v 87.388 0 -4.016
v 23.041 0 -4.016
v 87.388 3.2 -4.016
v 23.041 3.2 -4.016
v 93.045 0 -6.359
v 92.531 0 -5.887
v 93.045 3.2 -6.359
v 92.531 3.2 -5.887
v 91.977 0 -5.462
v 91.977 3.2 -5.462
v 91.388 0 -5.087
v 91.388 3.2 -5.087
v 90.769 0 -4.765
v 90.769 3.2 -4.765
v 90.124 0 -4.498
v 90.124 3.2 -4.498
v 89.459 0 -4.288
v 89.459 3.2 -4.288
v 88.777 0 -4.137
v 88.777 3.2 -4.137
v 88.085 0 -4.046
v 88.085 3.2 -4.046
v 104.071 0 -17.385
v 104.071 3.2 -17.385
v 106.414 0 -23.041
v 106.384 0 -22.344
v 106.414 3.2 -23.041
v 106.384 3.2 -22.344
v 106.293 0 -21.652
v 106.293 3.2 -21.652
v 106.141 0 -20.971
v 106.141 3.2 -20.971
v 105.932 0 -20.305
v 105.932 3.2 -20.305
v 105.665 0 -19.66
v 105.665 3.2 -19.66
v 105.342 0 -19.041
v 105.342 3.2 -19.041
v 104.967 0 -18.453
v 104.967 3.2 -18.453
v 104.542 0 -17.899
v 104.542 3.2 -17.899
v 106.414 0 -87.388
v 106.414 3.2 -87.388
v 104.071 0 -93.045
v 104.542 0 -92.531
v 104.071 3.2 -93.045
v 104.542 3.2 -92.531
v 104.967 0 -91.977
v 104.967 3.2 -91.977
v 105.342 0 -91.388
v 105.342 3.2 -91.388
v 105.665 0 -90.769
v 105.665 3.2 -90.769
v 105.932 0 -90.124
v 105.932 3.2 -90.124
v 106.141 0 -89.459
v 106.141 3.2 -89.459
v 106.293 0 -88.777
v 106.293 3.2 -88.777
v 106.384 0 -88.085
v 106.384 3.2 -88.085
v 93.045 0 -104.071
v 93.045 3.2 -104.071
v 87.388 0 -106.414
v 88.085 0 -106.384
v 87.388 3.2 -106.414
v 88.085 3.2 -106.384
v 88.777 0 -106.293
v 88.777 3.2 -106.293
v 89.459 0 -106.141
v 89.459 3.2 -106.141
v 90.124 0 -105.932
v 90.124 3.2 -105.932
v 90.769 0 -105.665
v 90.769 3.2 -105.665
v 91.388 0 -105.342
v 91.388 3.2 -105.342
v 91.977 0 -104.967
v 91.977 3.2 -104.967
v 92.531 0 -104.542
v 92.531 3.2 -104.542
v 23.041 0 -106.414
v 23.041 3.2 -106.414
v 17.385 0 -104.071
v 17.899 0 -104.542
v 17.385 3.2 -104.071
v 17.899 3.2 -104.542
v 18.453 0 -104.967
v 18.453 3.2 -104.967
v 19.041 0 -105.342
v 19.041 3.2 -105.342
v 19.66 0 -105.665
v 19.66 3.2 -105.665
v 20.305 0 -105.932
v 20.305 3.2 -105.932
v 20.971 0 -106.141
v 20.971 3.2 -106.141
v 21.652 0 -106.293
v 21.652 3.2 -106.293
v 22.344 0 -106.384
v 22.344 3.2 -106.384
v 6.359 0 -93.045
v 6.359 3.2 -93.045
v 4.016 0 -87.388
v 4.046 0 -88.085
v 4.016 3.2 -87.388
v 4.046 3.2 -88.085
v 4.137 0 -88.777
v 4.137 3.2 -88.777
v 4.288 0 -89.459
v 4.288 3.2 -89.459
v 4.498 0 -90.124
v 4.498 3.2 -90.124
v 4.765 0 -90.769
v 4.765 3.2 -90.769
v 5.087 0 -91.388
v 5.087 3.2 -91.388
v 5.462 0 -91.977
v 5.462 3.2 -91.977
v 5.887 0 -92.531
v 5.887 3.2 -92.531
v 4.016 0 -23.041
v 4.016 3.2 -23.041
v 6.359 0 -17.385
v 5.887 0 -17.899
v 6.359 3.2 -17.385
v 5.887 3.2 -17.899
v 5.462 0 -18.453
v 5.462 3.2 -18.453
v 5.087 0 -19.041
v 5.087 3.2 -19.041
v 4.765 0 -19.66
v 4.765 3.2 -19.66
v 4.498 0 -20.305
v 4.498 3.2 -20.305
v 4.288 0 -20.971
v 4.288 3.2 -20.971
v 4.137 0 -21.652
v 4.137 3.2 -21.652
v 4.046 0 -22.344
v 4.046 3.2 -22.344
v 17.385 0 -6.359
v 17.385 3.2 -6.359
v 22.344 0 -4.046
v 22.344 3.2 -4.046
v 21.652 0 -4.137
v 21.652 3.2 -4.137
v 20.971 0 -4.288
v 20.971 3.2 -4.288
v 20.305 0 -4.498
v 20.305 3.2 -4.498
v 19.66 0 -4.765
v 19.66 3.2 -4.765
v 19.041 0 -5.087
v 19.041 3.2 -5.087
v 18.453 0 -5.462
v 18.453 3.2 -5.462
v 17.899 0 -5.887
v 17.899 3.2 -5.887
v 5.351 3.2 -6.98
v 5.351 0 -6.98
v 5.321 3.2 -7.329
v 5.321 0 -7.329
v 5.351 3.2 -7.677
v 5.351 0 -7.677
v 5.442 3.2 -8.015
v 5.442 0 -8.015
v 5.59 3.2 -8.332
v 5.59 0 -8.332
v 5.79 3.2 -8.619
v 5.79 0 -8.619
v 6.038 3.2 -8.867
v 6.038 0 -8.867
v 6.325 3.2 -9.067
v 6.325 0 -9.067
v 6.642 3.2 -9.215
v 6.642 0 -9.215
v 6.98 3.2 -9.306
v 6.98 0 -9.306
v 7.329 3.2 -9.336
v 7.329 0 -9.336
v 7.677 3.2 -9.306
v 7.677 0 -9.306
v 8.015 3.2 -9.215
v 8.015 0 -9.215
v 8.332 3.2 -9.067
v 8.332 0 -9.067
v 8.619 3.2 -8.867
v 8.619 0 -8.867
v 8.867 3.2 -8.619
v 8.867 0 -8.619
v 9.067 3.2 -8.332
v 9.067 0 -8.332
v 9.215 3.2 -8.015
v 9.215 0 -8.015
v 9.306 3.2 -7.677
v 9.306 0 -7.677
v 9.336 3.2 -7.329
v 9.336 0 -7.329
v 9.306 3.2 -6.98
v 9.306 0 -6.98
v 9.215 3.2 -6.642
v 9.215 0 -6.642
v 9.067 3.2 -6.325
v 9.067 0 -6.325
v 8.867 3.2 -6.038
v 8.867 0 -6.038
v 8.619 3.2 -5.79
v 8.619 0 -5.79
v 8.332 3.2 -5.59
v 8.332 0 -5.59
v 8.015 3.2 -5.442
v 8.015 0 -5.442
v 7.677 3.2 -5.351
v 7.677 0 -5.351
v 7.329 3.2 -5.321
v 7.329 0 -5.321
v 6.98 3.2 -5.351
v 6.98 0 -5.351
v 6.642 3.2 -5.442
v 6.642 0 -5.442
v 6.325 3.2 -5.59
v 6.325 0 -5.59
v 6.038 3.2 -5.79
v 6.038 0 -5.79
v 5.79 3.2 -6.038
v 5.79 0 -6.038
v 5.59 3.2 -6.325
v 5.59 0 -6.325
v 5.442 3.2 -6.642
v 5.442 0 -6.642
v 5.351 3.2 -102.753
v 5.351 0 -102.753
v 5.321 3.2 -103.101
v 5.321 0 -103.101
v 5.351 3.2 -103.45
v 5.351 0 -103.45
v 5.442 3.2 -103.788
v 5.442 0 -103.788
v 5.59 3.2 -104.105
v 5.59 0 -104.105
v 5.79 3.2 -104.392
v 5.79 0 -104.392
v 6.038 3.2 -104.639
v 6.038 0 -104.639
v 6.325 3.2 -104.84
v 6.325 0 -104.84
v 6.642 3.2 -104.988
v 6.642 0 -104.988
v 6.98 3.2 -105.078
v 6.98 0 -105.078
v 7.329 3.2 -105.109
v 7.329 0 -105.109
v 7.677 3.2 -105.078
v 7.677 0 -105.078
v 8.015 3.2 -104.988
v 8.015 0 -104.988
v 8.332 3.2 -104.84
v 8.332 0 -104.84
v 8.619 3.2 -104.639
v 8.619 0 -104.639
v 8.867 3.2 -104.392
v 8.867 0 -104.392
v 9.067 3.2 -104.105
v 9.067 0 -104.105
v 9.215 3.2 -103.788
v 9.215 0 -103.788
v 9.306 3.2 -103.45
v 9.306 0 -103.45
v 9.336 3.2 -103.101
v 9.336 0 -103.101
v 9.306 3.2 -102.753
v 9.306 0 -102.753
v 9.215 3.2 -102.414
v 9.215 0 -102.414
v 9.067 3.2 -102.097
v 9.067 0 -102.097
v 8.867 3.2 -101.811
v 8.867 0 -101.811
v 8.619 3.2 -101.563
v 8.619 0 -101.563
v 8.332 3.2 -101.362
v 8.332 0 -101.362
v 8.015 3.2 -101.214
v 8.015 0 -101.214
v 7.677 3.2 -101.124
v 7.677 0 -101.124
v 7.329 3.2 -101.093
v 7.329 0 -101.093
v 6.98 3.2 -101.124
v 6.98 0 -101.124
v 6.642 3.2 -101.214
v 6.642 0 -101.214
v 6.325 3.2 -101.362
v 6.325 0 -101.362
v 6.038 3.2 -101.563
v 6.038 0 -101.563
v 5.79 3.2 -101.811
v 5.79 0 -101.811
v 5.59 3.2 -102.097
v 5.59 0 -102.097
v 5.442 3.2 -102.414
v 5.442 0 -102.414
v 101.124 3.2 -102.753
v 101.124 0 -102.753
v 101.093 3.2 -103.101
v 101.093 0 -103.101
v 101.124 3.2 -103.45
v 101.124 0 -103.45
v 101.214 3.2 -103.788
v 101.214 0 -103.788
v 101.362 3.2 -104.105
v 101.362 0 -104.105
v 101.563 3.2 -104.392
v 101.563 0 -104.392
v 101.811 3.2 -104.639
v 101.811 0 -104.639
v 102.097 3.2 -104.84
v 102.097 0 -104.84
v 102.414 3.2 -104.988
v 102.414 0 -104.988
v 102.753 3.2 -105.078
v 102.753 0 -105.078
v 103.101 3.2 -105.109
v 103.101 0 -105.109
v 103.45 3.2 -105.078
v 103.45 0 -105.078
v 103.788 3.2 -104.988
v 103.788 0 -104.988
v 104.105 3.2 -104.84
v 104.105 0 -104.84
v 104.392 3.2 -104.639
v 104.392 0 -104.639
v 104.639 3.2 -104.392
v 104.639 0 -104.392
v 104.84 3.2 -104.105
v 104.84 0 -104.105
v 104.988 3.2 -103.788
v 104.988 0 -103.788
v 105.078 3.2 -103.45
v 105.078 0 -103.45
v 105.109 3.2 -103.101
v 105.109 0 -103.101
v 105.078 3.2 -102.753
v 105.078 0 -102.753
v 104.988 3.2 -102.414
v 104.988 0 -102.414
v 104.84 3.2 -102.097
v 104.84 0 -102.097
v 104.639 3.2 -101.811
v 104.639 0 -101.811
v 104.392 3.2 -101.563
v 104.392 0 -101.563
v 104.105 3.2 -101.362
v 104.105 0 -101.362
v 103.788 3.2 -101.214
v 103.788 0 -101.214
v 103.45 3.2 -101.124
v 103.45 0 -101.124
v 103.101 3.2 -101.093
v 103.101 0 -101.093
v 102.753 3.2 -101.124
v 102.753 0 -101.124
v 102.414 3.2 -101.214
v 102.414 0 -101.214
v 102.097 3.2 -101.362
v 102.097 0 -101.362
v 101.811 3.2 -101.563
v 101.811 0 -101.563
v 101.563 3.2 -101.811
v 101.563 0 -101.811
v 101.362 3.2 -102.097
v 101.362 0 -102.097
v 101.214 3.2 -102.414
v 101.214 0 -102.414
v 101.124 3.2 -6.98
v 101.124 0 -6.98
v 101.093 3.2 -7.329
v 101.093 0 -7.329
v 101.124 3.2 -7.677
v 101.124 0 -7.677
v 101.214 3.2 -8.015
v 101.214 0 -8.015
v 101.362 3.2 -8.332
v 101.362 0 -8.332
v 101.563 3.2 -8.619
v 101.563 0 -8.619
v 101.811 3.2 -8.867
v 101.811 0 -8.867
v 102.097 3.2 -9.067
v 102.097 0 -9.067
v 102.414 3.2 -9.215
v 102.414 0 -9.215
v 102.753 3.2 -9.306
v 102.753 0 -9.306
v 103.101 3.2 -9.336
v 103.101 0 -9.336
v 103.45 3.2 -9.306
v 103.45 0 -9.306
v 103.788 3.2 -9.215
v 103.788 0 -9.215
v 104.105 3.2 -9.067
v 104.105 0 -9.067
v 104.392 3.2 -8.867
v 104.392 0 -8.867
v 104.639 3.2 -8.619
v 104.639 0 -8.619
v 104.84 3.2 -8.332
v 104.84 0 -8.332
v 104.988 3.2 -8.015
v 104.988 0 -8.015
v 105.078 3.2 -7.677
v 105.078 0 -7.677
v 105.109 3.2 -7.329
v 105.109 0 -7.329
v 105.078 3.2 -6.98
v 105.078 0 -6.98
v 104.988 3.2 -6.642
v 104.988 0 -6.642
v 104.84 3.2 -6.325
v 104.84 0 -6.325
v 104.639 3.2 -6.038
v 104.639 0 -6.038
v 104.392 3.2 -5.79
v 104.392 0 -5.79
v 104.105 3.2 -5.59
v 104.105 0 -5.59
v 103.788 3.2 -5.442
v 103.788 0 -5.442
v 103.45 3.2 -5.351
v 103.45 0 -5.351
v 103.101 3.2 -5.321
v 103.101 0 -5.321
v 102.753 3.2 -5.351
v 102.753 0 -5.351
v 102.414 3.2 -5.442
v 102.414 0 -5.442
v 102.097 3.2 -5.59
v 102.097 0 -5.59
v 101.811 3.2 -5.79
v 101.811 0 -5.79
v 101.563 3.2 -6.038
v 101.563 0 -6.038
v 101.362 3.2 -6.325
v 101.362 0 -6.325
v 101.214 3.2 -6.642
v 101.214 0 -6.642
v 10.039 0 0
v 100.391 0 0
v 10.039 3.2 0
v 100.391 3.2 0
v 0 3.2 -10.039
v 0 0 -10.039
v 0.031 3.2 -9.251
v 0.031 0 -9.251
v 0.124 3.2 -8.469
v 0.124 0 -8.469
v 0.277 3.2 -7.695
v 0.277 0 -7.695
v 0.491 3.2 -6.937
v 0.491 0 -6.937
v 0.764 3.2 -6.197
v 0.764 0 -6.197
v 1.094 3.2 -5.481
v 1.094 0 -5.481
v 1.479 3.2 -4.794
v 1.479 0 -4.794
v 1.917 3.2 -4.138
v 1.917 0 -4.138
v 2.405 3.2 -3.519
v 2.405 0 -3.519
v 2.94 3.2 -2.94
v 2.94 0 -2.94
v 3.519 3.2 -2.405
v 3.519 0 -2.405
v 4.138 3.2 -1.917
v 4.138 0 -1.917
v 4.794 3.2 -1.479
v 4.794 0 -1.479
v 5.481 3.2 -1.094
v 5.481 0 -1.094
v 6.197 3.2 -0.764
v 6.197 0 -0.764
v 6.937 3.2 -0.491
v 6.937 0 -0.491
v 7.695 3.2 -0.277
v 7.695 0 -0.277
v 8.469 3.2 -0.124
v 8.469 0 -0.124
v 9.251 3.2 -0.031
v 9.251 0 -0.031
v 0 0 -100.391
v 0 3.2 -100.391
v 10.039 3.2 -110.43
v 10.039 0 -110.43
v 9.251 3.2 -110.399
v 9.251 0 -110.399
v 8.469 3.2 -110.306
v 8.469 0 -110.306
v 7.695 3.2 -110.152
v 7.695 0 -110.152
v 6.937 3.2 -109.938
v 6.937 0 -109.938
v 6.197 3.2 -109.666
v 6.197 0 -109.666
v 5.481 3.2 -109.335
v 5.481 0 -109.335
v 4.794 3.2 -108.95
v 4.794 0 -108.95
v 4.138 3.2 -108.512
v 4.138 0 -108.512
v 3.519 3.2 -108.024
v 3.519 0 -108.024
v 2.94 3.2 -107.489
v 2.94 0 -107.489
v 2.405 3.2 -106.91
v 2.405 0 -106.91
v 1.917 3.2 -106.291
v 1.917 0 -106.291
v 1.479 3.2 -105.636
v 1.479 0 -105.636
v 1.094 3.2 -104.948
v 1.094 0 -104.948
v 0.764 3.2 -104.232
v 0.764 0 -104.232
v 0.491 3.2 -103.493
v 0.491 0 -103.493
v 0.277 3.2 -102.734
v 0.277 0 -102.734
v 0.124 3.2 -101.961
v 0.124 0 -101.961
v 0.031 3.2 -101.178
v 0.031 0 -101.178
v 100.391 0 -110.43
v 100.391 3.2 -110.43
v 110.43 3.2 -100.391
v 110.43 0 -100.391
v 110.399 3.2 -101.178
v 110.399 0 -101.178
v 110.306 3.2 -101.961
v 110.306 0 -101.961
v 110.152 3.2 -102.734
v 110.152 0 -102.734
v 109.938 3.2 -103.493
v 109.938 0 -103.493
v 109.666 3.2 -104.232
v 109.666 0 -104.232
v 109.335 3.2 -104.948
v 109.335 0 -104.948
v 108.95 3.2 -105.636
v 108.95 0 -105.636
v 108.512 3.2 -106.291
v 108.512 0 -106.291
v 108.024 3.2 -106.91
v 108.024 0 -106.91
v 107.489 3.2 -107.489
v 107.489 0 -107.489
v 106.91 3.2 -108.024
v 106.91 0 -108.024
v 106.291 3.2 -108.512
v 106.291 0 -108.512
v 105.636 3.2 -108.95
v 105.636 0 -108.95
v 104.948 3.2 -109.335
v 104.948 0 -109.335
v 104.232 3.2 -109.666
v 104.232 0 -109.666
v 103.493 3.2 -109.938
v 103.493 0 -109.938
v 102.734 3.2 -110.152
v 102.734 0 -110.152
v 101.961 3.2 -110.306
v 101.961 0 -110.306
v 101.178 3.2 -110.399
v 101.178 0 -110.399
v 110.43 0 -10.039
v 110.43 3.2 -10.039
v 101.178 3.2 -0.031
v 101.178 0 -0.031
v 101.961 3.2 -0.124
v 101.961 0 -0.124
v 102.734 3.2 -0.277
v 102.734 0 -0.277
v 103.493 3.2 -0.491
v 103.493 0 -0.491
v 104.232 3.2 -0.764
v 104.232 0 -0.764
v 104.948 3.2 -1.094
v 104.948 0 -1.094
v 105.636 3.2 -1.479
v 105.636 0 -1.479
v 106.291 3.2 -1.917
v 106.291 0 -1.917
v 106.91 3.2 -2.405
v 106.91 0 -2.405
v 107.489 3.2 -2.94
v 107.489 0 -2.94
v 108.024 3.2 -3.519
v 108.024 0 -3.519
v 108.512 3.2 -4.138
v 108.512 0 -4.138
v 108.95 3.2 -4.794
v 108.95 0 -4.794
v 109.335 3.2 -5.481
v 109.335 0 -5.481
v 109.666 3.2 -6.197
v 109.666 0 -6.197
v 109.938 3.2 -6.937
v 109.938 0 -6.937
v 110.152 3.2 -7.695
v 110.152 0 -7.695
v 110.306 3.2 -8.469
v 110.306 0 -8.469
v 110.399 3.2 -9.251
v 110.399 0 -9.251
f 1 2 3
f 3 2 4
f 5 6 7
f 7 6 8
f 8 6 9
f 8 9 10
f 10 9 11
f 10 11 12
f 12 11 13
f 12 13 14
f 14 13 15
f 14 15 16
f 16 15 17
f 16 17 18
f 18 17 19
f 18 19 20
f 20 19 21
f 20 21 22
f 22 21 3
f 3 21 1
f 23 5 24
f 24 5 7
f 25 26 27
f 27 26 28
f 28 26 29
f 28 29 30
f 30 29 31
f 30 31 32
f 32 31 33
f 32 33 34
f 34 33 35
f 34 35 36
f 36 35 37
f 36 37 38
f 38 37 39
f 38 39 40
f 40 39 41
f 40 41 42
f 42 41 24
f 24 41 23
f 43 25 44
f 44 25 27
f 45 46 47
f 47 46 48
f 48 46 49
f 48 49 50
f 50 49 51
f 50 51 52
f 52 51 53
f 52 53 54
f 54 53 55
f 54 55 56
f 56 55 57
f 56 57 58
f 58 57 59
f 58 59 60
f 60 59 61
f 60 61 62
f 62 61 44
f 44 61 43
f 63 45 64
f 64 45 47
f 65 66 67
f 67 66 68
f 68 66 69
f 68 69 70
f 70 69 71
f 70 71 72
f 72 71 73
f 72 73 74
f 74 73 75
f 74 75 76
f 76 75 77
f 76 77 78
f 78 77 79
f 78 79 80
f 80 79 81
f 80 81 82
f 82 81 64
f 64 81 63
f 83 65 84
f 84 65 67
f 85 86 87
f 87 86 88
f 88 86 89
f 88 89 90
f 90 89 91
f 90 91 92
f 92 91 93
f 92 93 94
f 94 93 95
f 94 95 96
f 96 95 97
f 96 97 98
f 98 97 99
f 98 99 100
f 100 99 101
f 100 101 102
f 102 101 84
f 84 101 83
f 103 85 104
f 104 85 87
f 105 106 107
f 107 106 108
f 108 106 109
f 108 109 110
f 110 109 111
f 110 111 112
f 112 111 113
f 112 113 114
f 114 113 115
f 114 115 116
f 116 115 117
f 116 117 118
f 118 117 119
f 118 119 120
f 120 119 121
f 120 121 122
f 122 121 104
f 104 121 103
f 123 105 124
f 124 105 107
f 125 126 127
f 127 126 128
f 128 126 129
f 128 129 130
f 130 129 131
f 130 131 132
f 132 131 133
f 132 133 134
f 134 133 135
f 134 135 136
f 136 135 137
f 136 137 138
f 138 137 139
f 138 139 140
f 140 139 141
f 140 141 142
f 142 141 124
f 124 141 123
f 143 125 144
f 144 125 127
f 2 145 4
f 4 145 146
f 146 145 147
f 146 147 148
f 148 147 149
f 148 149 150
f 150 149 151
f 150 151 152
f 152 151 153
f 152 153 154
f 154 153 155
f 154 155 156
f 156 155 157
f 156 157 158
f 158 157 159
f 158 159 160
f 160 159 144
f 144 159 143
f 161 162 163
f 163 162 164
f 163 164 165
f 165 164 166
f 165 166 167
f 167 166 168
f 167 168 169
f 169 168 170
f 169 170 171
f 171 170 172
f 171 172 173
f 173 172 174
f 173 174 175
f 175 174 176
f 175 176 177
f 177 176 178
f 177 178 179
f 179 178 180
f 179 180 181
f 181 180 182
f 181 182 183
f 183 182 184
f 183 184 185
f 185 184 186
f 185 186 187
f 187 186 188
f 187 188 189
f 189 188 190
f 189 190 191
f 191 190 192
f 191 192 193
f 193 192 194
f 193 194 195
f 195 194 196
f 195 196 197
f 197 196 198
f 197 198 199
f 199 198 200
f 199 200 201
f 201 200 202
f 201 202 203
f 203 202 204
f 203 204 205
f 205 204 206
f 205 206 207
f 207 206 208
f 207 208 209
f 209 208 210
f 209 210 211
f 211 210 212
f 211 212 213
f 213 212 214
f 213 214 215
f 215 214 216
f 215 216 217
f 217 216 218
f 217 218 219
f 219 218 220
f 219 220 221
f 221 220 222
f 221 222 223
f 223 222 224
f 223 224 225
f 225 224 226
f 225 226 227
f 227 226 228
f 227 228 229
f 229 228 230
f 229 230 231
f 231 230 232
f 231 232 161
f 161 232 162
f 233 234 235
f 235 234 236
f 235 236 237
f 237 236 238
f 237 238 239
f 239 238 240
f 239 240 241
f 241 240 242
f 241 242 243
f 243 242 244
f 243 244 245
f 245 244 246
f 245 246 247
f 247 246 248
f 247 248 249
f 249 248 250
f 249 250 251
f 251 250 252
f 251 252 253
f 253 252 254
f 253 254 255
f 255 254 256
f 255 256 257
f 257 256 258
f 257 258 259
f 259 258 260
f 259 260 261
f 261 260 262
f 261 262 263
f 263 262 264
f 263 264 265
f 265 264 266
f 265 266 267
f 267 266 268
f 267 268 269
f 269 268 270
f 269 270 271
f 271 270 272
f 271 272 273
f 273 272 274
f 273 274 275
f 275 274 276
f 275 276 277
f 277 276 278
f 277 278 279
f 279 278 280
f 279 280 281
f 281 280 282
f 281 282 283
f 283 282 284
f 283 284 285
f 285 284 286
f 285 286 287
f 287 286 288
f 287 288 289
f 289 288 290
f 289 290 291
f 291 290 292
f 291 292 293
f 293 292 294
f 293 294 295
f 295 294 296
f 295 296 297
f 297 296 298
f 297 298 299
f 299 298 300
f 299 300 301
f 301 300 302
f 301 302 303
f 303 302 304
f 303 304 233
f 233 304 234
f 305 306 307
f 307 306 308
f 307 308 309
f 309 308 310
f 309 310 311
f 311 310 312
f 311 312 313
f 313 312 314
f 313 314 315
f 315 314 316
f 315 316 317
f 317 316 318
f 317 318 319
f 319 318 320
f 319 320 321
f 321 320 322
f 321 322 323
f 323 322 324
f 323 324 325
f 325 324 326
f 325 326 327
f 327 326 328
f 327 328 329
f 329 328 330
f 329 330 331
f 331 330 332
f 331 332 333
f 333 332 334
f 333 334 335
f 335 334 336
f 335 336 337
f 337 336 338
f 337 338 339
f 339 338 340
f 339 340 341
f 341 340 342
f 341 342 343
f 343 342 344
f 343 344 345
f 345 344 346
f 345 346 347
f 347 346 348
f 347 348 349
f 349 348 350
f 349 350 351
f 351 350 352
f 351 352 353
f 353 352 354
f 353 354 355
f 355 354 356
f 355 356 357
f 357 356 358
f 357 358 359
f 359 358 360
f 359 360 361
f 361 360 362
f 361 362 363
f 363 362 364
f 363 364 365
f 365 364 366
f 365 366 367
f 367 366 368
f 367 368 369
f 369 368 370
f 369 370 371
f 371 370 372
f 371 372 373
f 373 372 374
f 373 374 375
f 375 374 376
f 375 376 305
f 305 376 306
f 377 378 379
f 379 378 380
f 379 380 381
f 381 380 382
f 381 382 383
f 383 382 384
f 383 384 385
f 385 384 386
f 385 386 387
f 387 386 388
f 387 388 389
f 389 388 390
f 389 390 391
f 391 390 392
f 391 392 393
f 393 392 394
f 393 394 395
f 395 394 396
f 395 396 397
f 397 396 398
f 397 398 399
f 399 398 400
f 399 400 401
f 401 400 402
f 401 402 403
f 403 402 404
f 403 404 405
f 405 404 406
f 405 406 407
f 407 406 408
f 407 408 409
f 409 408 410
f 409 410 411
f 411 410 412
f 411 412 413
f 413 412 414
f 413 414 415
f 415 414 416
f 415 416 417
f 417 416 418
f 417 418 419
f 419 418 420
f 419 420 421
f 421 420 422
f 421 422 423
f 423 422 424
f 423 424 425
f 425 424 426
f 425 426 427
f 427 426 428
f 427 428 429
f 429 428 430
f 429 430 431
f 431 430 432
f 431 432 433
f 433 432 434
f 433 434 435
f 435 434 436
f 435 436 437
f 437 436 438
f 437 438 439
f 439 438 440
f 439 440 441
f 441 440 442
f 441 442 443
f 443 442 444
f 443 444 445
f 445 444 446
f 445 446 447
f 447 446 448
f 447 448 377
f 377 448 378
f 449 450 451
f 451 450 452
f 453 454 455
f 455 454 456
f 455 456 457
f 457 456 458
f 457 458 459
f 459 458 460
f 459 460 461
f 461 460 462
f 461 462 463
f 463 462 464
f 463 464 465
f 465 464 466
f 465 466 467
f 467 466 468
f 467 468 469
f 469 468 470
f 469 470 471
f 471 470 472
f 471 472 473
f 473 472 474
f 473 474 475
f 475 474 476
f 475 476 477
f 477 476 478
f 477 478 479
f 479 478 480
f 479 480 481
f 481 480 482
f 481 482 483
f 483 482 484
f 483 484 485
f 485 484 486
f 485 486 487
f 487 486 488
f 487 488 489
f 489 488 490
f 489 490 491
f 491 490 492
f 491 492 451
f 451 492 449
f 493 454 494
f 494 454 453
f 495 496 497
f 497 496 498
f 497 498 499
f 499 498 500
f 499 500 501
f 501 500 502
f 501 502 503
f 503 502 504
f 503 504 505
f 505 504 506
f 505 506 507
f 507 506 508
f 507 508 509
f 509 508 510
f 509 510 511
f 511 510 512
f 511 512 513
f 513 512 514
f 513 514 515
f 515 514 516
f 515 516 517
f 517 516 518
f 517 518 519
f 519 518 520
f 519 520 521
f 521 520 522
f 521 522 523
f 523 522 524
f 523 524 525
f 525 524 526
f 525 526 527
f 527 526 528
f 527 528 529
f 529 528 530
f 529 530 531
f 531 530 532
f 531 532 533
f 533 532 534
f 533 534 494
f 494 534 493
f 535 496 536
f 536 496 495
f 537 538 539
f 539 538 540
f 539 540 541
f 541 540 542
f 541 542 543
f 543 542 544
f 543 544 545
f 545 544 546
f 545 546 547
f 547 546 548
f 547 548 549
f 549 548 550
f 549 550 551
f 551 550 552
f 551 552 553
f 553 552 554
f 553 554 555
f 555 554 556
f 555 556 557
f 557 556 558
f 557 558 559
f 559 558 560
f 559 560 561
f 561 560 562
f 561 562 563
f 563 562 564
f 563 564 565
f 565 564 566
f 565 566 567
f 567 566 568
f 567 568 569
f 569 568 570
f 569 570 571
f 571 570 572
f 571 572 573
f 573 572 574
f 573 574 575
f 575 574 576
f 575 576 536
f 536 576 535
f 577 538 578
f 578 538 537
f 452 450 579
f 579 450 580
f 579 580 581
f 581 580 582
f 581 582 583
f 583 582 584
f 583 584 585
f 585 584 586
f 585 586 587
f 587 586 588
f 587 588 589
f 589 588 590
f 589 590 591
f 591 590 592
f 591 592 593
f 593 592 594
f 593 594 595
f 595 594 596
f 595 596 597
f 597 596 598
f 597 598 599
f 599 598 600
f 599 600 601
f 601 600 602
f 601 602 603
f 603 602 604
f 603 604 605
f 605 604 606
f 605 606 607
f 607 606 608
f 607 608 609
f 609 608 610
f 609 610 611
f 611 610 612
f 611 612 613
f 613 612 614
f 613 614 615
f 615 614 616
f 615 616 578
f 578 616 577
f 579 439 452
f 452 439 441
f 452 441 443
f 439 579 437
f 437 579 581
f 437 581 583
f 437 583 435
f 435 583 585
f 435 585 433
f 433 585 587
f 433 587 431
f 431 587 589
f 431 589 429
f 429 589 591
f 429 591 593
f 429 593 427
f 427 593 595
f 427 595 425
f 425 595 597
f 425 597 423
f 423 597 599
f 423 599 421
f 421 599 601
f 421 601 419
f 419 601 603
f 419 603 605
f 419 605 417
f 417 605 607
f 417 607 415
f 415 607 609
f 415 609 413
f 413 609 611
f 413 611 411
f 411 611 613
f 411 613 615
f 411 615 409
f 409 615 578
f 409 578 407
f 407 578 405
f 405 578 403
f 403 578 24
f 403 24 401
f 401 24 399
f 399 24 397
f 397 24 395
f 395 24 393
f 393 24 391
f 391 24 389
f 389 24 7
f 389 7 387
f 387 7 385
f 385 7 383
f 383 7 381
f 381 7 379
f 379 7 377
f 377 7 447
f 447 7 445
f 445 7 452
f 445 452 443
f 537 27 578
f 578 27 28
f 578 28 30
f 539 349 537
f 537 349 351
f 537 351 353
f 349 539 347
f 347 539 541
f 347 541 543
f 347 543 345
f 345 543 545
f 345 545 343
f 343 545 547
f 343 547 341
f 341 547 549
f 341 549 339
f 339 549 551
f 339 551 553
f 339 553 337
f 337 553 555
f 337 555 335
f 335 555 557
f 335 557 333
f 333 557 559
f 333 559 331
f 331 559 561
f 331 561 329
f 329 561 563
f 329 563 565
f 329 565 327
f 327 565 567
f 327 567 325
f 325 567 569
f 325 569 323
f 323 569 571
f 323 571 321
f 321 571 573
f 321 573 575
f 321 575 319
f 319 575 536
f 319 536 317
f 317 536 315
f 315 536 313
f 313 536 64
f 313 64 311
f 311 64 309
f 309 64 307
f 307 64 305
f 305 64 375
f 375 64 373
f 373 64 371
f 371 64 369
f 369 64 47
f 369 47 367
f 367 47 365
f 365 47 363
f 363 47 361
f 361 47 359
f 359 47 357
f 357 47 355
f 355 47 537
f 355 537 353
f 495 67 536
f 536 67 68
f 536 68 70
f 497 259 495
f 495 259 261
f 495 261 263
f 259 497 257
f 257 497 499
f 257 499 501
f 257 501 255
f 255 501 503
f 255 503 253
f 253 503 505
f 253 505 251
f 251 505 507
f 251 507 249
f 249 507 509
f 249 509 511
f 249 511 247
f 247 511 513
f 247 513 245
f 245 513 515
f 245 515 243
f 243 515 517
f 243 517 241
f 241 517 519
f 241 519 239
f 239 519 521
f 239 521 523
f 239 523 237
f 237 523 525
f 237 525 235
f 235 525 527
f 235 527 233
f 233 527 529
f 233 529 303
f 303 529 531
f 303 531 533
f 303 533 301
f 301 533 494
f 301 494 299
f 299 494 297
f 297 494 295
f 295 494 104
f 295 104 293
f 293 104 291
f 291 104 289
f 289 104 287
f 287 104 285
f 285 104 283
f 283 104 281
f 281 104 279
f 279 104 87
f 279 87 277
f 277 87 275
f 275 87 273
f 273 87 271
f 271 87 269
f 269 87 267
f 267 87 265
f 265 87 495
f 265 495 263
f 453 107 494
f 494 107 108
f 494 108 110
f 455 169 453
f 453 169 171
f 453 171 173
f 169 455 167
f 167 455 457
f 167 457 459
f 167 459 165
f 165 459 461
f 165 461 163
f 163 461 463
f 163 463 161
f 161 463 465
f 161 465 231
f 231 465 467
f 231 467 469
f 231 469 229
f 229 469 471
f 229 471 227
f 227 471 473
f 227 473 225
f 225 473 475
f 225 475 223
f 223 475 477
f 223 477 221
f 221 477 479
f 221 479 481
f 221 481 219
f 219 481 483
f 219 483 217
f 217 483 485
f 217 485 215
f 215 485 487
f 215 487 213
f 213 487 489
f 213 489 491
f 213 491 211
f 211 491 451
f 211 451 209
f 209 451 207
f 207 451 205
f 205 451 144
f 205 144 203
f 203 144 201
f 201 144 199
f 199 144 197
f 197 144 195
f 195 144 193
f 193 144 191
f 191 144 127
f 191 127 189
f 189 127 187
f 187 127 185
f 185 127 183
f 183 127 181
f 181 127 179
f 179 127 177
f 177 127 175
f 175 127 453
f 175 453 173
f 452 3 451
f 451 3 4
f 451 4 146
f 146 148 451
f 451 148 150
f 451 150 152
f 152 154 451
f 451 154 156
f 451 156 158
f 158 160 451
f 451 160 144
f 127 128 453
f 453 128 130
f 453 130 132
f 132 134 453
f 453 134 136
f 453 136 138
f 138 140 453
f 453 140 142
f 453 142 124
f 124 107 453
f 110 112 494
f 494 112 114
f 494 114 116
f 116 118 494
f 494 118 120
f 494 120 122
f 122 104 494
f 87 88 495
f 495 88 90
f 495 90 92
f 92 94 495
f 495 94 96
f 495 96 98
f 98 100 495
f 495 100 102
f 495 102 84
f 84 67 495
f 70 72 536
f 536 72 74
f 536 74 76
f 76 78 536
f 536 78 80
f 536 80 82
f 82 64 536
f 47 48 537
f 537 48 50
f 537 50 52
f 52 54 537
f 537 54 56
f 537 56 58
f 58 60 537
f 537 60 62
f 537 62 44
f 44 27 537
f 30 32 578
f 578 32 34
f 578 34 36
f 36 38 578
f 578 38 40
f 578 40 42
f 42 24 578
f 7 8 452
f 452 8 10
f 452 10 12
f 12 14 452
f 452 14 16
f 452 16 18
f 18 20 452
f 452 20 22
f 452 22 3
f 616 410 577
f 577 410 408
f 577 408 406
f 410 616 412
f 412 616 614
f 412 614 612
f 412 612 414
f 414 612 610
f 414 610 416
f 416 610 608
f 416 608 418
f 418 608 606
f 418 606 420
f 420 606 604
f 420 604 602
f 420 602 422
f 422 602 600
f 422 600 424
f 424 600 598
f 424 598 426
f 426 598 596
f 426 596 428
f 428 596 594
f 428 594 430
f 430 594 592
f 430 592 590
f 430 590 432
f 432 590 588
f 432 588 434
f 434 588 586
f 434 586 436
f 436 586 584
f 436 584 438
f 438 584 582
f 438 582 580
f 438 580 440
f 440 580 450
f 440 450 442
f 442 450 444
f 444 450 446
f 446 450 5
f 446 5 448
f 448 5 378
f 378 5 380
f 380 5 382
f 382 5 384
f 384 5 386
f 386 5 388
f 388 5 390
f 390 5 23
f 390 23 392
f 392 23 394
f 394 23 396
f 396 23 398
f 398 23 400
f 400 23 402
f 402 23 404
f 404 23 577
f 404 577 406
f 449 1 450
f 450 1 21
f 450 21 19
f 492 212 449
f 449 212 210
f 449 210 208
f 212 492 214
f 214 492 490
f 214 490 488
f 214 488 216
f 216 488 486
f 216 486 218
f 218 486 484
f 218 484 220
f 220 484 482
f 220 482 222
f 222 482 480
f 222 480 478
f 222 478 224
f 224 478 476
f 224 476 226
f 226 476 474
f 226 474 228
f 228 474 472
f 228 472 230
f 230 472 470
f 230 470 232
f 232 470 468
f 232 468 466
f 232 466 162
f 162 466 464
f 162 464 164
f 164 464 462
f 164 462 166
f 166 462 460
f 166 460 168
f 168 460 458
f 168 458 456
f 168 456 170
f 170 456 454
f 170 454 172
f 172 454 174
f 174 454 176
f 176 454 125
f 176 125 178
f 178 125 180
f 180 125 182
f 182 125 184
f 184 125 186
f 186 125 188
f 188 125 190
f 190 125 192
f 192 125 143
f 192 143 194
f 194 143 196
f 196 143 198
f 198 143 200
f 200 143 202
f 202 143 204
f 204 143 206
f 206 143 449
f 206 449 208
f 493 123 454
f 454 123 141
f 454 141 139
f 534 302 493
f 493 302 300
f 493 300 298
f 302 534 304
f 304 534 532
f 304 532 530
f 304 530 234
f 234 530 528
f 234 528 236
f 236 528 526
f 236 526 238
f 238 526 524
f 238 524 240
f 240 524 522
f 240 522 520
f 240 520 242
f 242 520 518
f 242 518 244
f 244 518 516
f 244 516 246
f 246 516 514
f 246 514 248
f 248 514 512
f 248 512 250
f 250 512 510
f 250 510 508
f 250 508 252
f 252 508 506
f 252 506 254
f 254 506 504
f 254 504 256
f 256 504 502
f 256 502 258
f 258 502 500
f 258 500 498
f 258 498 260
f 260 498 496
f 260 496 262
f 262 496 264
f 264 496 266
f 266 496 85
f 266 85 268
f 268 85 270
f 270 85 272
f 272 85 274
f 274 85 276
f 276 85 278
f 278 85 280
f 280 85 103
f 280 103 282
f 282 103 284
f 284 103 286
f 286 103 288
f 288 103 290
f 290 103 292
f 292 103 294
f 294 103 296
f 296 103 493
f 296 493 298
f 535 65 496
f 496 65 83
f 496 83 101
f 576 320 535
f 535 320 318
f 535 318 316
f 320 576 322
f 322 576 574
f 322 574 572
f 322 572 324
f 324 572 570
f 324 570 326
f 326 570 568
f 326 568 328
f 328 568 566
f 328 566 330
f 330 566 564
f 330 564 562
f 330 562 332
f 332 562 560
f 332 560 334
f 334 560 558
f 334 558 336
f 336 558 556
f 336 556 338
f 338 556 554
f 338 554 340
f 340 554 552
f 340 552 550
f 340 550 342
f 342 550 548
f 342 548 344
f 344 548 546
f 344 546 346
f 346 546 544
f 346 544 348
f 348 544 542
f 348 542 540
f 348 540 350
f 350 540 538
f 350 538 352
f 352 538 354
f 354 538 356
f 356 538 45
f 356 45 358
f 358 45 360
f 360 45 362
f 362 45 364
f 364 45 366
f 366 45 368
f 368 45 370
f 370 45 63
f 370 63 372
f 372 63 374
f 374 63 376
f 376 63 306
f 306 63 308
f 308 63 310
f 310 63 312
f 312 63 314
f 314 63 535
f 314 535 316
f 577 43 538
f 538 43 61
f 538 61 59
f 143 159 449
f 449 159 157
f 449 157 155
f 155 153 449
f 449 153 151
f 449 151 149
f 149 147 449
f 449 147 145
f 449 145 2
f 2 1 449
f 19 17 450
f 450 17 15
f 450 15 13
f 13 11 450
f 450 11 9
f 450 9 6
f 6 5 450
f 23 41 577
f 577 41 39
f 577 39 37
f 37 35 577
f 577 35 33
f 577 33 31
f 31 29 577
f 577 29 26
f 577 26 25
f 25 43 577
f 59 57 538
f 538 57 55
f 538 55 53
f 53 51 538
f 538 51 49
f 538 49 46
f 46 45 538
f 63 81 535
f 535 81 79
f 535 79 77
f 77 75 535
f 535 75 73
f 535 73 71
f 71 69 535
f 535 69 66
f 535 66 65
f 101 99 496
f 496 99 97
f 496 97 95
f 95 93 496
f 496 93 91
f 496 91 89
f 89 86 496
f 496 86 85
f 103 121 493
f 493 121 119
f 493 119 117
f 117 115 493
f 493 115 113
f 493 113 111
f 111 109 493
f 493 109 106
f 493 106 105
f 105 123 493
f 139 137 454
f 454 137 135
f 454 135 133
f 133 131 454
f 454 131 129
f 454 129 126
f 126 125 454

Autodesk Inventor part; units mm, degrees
ref_plane "YZ Plane" through (0, 0, 0) normal (1, 0, 0) x (0, 1, 0)
ref_plane "XZ Plane" through (0, 0, 0) normal (0, 1, 0) x (-1, 0, 0)
ref_plane "XY Plane" through (0, 0, 0) normal (0, 0, 1) x (1, 0, 0)
sketch "Sketch1" plane through (0, 0, 0) normal (0, 1, 0) x (-1, 0, 0)
  line L0 (-10.0391, 0) -> (-100.3906, 0)
  line L1 (-110.4297, -10.0391) -> (-110.4297, -100.3906)
  line L2 (-100.3906, -110.4297) -> (-10.0391, -110.4297)
  line L3 (0, -100.3906) -> (0, -10.0391)
  arc A0 (-10.0391, -110.4297) -> (0, -100.3906) centre (-10.0391, -100.3906) ccw
  arc A1 (-110.4297, -100.3906) -> (-100.3906, -110.4297) centre (-100.3906, -100.3906) ccw
  arc A2 (-100.3906, 0) -> (-110.4297, -10.0391) centre (-100.3906, -10.0391) ccw
  arc A3 (0, -10.0391) -> (-10.0391, 0) centre (-10.0391, -10.0391) ccw
  line L4 (-23.0414, -4.0156) -> (-87.3883, -4.0156)
  line L5 (-106.4141, -23.0414) -> (-106.4141, -87.3883)
  line L6 (-87.3883, -106.4141) -> (-23.0414, -106.4141)
  line L7 (-4.0156, -87.3883) -> (-4.0156, -23.0414)
  circle A4 centre (-7.3285, -7.3285) radius 2.0078
  circle A5 centre (-7.3285, -103.1012) radius 2.0078
  circle A6 centre (-103.1012, -103.1012) radius 2.0078
  circle A7 centre (-103.1012, -7.3285) radius 2.0078
  line L8 (-6.3588, -17.3846) -> (-17.3846, -6.3588)
  line L9 (-93.0451, -6.3588) -> (-104.0709, -17.3846)
  line L10 (-104.0709, -93.0451) -> (-93.0451, -104.0709)
  line L11 (-17.3846, -104.0709) -> (-6.3588, -93.0451)
  arc A8 (-17.3846, -6.3588) -> (-23.0414, -4.0156) centre (-23.0414, -12.0156) ccw
  arc A9 (-4.0156, -23.0414) -> (-6.3588, -17.3846) centre (-12.0156, -23.0414) ccw
  arc A10 (-6.3588, -93.0451) -> (-4.0156, -87.3883) centre (-12.0156, -87.3883) ccw
  arc A11 (-23.0414, -106.4141) -> (-17.3846, -104.0709) centre (-23.0414, -98.4141) ccw
  arc A12 (-93.0451, -104.0709) -> (-87.3883, -106.4141) centre (-87.3883, -98.4141) ccw
  arc A13 (-106.4141, -87.3883) -> (-104.0709, -93.0451) centre (-98.4141, -87.3883) ccw
  arc A14 (-104.0709, -17.3846) -> (-106.4141, -23.0414) centre (-98.4141, -23.0414) ccw
  arc A15 (-87.3883, -4.0156) -> (-93.0451, -6.3588) centre (-87.3883, -12.0156) ccw
  point P0 (0, 0)
  point P1 (-4.0156, -4.0156)
  point P2 (-106.4141, -106.4141)
  point P3 (-106.4141, -4.0156)
  point P4 (-4.0156, -106.4141)
  point P5 (-4.0156, -19.7277)
  point P6 (-19.7277, -4.0156)
  point P7 (-55.2148, -55.2148)
  point P8 (-90.702, -4.0156)
  point P9 (-106.4141, -19.7277)
  point P10 (-106.4141, -90.702)
  point P11 (-90.702, -106.4141)
  point P12 (-19.7277, -106.4141)
  point P13 (-4.0156, -90.702)
  dimension "d25" = 360
extrude "Extrusion1" add sketch "Sketch1" along normal blind 3.2
properties part number "Spacer"
